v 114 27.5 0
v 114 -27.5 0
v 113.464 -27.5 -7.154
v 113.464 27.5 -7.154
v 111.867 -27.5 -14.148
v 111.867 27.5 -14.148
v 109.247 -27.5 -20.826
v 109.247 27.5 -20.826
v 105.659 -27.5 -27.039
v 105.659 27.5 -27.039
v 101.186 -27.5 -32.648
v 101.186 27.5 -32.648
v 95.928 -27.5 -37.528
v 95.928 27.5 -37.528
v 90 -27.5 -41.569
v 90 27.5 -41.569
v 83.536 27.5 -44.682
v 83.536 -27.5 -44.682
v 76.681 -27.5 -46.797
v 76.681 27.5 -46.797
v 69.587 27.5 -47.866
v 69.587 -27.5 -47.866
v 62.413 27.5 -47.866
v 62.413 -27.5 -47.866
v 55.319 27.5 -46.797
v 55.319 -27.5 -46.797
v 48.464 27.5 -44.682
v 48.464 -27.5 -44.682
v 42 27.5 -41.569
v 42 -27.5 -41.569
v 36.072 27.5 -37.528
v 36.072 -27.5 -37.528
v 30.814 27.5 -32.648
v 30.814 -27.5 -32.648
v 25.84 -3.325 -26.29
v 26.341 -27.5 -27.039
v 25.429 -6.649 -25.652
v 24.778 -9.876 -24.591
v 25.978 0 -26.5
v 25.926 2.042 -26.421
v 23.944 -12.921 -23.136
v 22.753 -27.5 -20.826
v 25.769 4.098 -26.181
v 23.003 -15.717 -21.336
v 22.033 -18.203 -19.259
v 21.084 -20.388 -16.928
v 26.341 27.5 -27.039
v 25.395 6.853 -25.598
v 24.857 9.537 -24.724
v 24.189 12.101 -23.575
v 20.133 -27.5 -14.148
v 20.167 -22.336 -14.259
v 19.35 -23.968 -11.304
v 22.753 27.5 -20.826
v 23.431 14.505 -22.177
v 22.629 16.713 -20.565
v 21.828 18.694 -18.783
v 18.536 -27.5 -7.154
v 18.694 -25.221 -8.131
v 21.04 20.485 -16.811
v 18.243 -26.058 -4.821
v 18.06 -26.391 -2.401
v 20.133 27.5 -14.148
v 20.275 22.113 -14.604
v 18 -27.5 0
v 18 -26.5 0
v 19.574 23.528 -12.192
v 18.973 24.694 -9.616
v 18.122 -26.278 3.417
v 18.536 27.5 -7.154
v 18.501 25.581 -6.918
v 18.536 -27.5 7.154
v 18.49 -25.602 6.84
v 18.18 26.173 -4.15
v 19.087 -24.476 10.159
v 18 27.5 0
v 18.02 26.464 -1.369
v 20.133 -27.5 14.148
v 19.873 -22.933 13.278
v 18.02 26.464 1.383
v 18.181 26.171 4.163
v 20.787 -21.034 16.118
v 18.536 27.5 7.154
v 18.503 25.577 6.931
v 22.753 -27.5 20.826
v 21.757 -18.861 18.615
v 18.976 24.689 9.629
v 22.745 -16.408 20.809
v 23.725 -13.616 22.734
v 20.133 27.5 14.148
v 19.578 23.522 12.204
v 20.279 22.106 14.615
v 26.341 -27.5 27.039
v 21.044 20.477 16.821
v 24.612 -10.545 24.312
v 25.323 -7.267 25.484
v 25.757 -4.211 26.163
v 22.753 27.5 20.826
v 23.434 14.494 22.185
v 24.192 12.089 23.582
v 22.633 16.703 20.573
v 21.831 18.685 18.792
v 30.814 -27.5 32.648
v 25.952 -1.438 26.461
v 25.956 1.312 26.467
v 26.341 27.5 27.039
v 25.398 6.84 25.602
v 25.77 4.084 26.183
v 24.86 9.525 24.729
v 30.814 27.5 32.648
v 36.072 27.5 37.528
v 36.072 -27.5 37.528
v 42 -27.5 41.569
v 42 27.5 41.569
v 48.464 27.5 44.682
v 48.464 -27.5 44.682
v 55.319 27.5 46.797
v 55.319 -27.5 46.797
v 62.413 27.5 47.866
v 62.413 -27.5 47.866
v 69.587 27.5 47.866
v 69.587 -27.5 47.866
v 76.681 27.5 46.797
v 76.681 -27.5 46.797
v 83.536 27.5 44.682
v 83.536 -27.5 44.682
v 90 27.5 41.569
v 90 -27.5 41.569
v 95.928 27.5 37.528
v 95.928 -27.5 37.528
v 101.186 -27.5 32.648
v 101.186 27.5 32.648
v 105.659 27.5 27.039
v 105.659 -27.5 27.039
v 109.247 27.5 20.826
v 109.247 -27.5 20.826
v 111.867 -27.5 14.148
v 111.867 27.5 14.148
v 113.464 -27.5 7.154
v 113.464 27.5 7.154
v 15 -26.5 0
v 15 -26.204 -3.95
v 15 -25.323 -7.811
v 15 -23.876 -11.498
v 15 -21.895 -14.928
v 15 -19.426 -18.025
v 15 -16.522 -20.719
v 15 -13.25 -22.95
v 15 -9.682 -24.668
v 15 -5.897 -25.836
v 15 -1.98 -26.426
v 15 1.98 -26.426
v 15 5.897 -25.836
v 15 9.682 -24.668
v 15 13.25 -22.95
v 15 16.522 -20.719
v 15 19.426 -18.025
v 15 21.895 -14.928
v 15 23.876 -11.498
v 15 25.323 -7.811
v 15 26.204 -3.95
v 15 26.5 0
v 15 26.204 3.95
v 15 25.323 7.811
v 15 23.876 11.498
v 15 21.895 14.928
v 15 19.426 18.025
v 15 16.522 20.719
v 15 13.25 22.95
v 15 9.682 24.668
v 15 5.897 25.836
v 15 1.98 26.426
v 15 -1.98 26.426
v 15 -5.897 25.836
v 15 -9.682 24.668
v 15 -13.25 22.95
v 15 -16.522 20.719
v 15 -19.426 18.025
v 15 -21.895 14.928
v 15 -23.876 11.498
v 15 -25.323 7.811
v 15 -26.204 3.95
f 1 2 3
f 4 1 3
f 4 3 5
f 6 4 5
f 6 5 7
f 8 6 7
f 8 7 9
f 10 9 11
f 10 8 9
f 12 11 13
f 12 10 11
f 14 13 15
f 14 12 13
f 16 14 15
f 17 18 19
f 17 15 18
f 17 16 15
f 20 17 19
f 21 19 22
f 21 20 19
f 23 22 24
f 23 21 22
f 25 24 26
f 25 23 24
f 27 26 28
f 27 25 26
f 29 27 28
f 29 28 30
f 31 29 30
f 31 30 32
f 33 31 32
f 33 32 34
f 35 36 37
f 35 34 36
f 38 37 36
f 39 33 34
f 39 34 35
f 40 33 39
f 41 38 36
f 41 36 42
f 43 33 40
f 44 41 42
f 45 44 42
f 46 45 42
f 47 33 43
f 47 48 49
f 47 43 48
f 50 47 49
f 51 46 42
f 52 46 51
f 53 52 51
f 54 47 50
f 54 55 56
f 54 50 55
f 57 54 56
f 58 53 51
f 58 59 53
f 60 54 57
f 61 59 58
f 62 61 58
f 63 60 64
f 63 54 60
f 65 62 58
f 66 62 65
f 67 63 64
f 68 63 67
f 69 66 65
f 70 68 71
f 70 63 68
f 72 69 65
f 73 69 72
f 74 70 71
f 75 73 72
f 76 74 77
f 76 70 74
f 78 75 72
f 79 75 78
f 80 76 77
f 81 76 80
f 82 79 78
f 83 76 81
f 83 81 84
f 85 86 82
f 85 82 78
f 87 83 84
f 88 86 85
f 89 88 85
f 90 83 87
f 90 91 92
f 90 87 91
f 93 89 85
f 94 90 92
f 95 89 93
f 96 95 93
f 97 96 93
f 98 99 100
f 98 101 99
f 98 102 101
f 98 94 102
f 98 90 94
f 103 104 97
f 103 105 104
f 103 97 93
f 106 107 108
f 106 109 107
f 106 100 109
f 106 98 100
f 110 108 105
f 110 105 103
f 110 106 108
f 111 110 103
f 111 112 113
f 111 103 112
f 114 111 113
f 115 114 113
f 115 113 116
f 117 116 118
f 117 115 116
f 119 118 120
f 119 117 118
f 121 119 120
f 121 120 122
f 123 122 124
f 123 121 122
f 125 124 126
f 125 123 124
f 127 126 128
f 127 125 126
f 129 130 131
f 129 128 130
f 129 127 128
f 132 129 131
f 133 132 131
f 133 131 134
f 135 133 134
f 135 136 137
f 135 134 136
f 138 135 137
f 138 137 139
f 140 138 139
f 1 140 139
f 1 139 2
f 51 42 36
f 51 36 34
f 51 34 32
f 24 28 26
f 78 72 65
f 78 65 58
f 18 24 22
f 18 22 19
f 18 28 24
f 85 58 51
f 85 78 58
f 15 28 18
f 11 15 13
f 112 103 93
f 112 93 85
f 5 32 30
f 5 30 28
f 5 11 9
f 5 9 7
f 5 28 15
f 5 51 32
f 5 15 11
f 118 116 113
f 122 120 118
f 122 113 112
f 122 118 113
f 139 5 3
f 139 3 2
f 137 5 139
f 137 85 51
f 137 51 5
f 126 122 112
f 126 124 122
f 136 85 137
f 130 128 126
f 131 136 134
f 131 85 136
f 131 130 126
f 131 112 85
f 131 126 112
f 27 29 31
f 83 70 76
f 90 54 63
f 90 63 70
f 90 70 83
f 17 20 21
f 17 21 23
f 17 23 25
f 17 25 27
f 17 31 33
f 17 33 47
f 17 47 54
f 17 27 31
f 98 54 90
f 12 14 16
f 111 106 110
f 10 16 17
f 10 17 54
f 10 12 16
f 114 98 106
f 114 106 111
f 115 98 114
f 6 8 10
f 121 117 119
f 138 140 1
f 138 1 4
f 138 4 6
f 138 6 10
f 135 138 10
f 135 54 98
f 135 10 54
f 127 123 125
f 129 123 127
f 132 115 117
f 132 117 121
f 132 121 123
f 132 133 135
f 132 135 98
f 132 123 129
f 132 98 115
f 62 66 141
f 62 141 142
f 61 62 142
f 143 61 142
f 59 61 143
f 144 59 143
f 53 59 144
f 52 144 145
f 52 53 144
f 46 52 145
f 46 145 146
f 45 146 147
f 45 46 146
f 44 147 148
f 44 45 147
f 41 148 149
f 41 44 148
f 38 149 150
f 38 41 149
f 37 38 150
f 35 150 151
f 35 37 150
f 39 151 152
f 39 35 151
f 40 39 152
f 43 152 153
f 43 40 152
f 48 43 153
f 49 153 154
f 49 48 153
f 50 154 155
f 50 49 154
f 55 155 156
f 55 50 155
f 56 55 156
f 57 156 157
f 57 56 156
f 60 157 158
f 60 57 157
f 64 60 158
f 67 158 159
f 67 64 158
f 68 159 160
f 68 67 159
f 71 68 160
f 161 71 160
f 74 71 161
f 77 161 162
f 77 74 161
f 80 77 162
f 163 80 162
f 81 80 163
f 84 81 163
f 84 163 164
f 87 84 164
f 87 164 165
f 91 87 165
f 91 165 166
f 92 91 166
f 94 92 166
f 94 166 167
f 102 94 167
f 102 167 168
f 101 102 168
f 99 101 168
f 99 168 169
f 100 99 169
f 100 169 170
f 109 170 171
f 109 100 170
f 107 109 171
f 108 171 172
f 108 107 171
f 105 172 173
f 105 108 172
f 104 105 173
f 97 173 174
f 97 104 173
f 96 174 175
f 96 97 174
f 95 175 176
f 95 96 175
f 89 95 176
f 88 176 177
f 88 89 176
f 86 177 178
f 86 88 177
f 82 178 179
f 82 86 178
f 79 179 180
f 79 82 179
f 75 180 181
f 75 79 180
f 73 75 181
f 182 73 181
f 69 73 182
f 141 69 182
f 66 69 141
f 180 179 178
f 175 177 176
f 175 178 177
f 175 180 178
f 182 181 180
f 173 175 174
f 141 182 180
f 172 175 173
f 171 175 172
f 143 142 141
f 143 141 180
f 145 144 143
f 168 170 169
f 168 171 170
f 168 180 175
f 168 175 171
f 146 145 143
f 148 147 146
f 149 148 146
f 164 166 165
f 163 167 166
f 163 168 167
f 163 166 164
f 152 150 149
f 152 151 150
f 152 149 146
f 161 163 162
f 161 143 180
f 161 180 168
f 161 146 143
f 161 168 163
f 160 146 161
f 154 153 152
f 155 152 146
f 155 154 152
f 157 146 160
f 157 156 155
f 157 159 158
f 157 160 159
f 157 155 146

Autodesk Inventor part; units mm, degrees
ref_plane "YZ Plane" through (0, 0, 0) normal (1, 0, 0) x (0, 1, 0)
ref_plane "XZ Plane" through (0, 0, 0) normal (0, 1, 0) x (-1, 0, 0)
ref_plane "XY Plane" through (0, 0, 0) normal (0, 0, 1) x (1, 0, 0)
sketch "Sketch1" plane through (0, 0, 0) normal (1, 0, 0) x (0, 1, 0)
  circle A0 centre (0, 0) radius 26.5
  dimension "d0" = 53
extrude "Extrusion1" add sketch "Sketch1" along normal blind 51
sketch "Sketch2" plane through (0, 0, 0) normal (0, 1, 0) x (-1, 0, 0)
  line L0 (-51, 26.5) -> (-51, -26.5) projected
  circle A0 centre (-51, 0) radius 48
  point P0 (0, 0)
  dimension "d3" = 96
extrude "Extrusion2" add sketch "Sketch2" along normal mid plane 55
move or copy body "Move Body1" bodies to move or copy 1 copy no translate (15, 0, 0)
properties part number "hip"
